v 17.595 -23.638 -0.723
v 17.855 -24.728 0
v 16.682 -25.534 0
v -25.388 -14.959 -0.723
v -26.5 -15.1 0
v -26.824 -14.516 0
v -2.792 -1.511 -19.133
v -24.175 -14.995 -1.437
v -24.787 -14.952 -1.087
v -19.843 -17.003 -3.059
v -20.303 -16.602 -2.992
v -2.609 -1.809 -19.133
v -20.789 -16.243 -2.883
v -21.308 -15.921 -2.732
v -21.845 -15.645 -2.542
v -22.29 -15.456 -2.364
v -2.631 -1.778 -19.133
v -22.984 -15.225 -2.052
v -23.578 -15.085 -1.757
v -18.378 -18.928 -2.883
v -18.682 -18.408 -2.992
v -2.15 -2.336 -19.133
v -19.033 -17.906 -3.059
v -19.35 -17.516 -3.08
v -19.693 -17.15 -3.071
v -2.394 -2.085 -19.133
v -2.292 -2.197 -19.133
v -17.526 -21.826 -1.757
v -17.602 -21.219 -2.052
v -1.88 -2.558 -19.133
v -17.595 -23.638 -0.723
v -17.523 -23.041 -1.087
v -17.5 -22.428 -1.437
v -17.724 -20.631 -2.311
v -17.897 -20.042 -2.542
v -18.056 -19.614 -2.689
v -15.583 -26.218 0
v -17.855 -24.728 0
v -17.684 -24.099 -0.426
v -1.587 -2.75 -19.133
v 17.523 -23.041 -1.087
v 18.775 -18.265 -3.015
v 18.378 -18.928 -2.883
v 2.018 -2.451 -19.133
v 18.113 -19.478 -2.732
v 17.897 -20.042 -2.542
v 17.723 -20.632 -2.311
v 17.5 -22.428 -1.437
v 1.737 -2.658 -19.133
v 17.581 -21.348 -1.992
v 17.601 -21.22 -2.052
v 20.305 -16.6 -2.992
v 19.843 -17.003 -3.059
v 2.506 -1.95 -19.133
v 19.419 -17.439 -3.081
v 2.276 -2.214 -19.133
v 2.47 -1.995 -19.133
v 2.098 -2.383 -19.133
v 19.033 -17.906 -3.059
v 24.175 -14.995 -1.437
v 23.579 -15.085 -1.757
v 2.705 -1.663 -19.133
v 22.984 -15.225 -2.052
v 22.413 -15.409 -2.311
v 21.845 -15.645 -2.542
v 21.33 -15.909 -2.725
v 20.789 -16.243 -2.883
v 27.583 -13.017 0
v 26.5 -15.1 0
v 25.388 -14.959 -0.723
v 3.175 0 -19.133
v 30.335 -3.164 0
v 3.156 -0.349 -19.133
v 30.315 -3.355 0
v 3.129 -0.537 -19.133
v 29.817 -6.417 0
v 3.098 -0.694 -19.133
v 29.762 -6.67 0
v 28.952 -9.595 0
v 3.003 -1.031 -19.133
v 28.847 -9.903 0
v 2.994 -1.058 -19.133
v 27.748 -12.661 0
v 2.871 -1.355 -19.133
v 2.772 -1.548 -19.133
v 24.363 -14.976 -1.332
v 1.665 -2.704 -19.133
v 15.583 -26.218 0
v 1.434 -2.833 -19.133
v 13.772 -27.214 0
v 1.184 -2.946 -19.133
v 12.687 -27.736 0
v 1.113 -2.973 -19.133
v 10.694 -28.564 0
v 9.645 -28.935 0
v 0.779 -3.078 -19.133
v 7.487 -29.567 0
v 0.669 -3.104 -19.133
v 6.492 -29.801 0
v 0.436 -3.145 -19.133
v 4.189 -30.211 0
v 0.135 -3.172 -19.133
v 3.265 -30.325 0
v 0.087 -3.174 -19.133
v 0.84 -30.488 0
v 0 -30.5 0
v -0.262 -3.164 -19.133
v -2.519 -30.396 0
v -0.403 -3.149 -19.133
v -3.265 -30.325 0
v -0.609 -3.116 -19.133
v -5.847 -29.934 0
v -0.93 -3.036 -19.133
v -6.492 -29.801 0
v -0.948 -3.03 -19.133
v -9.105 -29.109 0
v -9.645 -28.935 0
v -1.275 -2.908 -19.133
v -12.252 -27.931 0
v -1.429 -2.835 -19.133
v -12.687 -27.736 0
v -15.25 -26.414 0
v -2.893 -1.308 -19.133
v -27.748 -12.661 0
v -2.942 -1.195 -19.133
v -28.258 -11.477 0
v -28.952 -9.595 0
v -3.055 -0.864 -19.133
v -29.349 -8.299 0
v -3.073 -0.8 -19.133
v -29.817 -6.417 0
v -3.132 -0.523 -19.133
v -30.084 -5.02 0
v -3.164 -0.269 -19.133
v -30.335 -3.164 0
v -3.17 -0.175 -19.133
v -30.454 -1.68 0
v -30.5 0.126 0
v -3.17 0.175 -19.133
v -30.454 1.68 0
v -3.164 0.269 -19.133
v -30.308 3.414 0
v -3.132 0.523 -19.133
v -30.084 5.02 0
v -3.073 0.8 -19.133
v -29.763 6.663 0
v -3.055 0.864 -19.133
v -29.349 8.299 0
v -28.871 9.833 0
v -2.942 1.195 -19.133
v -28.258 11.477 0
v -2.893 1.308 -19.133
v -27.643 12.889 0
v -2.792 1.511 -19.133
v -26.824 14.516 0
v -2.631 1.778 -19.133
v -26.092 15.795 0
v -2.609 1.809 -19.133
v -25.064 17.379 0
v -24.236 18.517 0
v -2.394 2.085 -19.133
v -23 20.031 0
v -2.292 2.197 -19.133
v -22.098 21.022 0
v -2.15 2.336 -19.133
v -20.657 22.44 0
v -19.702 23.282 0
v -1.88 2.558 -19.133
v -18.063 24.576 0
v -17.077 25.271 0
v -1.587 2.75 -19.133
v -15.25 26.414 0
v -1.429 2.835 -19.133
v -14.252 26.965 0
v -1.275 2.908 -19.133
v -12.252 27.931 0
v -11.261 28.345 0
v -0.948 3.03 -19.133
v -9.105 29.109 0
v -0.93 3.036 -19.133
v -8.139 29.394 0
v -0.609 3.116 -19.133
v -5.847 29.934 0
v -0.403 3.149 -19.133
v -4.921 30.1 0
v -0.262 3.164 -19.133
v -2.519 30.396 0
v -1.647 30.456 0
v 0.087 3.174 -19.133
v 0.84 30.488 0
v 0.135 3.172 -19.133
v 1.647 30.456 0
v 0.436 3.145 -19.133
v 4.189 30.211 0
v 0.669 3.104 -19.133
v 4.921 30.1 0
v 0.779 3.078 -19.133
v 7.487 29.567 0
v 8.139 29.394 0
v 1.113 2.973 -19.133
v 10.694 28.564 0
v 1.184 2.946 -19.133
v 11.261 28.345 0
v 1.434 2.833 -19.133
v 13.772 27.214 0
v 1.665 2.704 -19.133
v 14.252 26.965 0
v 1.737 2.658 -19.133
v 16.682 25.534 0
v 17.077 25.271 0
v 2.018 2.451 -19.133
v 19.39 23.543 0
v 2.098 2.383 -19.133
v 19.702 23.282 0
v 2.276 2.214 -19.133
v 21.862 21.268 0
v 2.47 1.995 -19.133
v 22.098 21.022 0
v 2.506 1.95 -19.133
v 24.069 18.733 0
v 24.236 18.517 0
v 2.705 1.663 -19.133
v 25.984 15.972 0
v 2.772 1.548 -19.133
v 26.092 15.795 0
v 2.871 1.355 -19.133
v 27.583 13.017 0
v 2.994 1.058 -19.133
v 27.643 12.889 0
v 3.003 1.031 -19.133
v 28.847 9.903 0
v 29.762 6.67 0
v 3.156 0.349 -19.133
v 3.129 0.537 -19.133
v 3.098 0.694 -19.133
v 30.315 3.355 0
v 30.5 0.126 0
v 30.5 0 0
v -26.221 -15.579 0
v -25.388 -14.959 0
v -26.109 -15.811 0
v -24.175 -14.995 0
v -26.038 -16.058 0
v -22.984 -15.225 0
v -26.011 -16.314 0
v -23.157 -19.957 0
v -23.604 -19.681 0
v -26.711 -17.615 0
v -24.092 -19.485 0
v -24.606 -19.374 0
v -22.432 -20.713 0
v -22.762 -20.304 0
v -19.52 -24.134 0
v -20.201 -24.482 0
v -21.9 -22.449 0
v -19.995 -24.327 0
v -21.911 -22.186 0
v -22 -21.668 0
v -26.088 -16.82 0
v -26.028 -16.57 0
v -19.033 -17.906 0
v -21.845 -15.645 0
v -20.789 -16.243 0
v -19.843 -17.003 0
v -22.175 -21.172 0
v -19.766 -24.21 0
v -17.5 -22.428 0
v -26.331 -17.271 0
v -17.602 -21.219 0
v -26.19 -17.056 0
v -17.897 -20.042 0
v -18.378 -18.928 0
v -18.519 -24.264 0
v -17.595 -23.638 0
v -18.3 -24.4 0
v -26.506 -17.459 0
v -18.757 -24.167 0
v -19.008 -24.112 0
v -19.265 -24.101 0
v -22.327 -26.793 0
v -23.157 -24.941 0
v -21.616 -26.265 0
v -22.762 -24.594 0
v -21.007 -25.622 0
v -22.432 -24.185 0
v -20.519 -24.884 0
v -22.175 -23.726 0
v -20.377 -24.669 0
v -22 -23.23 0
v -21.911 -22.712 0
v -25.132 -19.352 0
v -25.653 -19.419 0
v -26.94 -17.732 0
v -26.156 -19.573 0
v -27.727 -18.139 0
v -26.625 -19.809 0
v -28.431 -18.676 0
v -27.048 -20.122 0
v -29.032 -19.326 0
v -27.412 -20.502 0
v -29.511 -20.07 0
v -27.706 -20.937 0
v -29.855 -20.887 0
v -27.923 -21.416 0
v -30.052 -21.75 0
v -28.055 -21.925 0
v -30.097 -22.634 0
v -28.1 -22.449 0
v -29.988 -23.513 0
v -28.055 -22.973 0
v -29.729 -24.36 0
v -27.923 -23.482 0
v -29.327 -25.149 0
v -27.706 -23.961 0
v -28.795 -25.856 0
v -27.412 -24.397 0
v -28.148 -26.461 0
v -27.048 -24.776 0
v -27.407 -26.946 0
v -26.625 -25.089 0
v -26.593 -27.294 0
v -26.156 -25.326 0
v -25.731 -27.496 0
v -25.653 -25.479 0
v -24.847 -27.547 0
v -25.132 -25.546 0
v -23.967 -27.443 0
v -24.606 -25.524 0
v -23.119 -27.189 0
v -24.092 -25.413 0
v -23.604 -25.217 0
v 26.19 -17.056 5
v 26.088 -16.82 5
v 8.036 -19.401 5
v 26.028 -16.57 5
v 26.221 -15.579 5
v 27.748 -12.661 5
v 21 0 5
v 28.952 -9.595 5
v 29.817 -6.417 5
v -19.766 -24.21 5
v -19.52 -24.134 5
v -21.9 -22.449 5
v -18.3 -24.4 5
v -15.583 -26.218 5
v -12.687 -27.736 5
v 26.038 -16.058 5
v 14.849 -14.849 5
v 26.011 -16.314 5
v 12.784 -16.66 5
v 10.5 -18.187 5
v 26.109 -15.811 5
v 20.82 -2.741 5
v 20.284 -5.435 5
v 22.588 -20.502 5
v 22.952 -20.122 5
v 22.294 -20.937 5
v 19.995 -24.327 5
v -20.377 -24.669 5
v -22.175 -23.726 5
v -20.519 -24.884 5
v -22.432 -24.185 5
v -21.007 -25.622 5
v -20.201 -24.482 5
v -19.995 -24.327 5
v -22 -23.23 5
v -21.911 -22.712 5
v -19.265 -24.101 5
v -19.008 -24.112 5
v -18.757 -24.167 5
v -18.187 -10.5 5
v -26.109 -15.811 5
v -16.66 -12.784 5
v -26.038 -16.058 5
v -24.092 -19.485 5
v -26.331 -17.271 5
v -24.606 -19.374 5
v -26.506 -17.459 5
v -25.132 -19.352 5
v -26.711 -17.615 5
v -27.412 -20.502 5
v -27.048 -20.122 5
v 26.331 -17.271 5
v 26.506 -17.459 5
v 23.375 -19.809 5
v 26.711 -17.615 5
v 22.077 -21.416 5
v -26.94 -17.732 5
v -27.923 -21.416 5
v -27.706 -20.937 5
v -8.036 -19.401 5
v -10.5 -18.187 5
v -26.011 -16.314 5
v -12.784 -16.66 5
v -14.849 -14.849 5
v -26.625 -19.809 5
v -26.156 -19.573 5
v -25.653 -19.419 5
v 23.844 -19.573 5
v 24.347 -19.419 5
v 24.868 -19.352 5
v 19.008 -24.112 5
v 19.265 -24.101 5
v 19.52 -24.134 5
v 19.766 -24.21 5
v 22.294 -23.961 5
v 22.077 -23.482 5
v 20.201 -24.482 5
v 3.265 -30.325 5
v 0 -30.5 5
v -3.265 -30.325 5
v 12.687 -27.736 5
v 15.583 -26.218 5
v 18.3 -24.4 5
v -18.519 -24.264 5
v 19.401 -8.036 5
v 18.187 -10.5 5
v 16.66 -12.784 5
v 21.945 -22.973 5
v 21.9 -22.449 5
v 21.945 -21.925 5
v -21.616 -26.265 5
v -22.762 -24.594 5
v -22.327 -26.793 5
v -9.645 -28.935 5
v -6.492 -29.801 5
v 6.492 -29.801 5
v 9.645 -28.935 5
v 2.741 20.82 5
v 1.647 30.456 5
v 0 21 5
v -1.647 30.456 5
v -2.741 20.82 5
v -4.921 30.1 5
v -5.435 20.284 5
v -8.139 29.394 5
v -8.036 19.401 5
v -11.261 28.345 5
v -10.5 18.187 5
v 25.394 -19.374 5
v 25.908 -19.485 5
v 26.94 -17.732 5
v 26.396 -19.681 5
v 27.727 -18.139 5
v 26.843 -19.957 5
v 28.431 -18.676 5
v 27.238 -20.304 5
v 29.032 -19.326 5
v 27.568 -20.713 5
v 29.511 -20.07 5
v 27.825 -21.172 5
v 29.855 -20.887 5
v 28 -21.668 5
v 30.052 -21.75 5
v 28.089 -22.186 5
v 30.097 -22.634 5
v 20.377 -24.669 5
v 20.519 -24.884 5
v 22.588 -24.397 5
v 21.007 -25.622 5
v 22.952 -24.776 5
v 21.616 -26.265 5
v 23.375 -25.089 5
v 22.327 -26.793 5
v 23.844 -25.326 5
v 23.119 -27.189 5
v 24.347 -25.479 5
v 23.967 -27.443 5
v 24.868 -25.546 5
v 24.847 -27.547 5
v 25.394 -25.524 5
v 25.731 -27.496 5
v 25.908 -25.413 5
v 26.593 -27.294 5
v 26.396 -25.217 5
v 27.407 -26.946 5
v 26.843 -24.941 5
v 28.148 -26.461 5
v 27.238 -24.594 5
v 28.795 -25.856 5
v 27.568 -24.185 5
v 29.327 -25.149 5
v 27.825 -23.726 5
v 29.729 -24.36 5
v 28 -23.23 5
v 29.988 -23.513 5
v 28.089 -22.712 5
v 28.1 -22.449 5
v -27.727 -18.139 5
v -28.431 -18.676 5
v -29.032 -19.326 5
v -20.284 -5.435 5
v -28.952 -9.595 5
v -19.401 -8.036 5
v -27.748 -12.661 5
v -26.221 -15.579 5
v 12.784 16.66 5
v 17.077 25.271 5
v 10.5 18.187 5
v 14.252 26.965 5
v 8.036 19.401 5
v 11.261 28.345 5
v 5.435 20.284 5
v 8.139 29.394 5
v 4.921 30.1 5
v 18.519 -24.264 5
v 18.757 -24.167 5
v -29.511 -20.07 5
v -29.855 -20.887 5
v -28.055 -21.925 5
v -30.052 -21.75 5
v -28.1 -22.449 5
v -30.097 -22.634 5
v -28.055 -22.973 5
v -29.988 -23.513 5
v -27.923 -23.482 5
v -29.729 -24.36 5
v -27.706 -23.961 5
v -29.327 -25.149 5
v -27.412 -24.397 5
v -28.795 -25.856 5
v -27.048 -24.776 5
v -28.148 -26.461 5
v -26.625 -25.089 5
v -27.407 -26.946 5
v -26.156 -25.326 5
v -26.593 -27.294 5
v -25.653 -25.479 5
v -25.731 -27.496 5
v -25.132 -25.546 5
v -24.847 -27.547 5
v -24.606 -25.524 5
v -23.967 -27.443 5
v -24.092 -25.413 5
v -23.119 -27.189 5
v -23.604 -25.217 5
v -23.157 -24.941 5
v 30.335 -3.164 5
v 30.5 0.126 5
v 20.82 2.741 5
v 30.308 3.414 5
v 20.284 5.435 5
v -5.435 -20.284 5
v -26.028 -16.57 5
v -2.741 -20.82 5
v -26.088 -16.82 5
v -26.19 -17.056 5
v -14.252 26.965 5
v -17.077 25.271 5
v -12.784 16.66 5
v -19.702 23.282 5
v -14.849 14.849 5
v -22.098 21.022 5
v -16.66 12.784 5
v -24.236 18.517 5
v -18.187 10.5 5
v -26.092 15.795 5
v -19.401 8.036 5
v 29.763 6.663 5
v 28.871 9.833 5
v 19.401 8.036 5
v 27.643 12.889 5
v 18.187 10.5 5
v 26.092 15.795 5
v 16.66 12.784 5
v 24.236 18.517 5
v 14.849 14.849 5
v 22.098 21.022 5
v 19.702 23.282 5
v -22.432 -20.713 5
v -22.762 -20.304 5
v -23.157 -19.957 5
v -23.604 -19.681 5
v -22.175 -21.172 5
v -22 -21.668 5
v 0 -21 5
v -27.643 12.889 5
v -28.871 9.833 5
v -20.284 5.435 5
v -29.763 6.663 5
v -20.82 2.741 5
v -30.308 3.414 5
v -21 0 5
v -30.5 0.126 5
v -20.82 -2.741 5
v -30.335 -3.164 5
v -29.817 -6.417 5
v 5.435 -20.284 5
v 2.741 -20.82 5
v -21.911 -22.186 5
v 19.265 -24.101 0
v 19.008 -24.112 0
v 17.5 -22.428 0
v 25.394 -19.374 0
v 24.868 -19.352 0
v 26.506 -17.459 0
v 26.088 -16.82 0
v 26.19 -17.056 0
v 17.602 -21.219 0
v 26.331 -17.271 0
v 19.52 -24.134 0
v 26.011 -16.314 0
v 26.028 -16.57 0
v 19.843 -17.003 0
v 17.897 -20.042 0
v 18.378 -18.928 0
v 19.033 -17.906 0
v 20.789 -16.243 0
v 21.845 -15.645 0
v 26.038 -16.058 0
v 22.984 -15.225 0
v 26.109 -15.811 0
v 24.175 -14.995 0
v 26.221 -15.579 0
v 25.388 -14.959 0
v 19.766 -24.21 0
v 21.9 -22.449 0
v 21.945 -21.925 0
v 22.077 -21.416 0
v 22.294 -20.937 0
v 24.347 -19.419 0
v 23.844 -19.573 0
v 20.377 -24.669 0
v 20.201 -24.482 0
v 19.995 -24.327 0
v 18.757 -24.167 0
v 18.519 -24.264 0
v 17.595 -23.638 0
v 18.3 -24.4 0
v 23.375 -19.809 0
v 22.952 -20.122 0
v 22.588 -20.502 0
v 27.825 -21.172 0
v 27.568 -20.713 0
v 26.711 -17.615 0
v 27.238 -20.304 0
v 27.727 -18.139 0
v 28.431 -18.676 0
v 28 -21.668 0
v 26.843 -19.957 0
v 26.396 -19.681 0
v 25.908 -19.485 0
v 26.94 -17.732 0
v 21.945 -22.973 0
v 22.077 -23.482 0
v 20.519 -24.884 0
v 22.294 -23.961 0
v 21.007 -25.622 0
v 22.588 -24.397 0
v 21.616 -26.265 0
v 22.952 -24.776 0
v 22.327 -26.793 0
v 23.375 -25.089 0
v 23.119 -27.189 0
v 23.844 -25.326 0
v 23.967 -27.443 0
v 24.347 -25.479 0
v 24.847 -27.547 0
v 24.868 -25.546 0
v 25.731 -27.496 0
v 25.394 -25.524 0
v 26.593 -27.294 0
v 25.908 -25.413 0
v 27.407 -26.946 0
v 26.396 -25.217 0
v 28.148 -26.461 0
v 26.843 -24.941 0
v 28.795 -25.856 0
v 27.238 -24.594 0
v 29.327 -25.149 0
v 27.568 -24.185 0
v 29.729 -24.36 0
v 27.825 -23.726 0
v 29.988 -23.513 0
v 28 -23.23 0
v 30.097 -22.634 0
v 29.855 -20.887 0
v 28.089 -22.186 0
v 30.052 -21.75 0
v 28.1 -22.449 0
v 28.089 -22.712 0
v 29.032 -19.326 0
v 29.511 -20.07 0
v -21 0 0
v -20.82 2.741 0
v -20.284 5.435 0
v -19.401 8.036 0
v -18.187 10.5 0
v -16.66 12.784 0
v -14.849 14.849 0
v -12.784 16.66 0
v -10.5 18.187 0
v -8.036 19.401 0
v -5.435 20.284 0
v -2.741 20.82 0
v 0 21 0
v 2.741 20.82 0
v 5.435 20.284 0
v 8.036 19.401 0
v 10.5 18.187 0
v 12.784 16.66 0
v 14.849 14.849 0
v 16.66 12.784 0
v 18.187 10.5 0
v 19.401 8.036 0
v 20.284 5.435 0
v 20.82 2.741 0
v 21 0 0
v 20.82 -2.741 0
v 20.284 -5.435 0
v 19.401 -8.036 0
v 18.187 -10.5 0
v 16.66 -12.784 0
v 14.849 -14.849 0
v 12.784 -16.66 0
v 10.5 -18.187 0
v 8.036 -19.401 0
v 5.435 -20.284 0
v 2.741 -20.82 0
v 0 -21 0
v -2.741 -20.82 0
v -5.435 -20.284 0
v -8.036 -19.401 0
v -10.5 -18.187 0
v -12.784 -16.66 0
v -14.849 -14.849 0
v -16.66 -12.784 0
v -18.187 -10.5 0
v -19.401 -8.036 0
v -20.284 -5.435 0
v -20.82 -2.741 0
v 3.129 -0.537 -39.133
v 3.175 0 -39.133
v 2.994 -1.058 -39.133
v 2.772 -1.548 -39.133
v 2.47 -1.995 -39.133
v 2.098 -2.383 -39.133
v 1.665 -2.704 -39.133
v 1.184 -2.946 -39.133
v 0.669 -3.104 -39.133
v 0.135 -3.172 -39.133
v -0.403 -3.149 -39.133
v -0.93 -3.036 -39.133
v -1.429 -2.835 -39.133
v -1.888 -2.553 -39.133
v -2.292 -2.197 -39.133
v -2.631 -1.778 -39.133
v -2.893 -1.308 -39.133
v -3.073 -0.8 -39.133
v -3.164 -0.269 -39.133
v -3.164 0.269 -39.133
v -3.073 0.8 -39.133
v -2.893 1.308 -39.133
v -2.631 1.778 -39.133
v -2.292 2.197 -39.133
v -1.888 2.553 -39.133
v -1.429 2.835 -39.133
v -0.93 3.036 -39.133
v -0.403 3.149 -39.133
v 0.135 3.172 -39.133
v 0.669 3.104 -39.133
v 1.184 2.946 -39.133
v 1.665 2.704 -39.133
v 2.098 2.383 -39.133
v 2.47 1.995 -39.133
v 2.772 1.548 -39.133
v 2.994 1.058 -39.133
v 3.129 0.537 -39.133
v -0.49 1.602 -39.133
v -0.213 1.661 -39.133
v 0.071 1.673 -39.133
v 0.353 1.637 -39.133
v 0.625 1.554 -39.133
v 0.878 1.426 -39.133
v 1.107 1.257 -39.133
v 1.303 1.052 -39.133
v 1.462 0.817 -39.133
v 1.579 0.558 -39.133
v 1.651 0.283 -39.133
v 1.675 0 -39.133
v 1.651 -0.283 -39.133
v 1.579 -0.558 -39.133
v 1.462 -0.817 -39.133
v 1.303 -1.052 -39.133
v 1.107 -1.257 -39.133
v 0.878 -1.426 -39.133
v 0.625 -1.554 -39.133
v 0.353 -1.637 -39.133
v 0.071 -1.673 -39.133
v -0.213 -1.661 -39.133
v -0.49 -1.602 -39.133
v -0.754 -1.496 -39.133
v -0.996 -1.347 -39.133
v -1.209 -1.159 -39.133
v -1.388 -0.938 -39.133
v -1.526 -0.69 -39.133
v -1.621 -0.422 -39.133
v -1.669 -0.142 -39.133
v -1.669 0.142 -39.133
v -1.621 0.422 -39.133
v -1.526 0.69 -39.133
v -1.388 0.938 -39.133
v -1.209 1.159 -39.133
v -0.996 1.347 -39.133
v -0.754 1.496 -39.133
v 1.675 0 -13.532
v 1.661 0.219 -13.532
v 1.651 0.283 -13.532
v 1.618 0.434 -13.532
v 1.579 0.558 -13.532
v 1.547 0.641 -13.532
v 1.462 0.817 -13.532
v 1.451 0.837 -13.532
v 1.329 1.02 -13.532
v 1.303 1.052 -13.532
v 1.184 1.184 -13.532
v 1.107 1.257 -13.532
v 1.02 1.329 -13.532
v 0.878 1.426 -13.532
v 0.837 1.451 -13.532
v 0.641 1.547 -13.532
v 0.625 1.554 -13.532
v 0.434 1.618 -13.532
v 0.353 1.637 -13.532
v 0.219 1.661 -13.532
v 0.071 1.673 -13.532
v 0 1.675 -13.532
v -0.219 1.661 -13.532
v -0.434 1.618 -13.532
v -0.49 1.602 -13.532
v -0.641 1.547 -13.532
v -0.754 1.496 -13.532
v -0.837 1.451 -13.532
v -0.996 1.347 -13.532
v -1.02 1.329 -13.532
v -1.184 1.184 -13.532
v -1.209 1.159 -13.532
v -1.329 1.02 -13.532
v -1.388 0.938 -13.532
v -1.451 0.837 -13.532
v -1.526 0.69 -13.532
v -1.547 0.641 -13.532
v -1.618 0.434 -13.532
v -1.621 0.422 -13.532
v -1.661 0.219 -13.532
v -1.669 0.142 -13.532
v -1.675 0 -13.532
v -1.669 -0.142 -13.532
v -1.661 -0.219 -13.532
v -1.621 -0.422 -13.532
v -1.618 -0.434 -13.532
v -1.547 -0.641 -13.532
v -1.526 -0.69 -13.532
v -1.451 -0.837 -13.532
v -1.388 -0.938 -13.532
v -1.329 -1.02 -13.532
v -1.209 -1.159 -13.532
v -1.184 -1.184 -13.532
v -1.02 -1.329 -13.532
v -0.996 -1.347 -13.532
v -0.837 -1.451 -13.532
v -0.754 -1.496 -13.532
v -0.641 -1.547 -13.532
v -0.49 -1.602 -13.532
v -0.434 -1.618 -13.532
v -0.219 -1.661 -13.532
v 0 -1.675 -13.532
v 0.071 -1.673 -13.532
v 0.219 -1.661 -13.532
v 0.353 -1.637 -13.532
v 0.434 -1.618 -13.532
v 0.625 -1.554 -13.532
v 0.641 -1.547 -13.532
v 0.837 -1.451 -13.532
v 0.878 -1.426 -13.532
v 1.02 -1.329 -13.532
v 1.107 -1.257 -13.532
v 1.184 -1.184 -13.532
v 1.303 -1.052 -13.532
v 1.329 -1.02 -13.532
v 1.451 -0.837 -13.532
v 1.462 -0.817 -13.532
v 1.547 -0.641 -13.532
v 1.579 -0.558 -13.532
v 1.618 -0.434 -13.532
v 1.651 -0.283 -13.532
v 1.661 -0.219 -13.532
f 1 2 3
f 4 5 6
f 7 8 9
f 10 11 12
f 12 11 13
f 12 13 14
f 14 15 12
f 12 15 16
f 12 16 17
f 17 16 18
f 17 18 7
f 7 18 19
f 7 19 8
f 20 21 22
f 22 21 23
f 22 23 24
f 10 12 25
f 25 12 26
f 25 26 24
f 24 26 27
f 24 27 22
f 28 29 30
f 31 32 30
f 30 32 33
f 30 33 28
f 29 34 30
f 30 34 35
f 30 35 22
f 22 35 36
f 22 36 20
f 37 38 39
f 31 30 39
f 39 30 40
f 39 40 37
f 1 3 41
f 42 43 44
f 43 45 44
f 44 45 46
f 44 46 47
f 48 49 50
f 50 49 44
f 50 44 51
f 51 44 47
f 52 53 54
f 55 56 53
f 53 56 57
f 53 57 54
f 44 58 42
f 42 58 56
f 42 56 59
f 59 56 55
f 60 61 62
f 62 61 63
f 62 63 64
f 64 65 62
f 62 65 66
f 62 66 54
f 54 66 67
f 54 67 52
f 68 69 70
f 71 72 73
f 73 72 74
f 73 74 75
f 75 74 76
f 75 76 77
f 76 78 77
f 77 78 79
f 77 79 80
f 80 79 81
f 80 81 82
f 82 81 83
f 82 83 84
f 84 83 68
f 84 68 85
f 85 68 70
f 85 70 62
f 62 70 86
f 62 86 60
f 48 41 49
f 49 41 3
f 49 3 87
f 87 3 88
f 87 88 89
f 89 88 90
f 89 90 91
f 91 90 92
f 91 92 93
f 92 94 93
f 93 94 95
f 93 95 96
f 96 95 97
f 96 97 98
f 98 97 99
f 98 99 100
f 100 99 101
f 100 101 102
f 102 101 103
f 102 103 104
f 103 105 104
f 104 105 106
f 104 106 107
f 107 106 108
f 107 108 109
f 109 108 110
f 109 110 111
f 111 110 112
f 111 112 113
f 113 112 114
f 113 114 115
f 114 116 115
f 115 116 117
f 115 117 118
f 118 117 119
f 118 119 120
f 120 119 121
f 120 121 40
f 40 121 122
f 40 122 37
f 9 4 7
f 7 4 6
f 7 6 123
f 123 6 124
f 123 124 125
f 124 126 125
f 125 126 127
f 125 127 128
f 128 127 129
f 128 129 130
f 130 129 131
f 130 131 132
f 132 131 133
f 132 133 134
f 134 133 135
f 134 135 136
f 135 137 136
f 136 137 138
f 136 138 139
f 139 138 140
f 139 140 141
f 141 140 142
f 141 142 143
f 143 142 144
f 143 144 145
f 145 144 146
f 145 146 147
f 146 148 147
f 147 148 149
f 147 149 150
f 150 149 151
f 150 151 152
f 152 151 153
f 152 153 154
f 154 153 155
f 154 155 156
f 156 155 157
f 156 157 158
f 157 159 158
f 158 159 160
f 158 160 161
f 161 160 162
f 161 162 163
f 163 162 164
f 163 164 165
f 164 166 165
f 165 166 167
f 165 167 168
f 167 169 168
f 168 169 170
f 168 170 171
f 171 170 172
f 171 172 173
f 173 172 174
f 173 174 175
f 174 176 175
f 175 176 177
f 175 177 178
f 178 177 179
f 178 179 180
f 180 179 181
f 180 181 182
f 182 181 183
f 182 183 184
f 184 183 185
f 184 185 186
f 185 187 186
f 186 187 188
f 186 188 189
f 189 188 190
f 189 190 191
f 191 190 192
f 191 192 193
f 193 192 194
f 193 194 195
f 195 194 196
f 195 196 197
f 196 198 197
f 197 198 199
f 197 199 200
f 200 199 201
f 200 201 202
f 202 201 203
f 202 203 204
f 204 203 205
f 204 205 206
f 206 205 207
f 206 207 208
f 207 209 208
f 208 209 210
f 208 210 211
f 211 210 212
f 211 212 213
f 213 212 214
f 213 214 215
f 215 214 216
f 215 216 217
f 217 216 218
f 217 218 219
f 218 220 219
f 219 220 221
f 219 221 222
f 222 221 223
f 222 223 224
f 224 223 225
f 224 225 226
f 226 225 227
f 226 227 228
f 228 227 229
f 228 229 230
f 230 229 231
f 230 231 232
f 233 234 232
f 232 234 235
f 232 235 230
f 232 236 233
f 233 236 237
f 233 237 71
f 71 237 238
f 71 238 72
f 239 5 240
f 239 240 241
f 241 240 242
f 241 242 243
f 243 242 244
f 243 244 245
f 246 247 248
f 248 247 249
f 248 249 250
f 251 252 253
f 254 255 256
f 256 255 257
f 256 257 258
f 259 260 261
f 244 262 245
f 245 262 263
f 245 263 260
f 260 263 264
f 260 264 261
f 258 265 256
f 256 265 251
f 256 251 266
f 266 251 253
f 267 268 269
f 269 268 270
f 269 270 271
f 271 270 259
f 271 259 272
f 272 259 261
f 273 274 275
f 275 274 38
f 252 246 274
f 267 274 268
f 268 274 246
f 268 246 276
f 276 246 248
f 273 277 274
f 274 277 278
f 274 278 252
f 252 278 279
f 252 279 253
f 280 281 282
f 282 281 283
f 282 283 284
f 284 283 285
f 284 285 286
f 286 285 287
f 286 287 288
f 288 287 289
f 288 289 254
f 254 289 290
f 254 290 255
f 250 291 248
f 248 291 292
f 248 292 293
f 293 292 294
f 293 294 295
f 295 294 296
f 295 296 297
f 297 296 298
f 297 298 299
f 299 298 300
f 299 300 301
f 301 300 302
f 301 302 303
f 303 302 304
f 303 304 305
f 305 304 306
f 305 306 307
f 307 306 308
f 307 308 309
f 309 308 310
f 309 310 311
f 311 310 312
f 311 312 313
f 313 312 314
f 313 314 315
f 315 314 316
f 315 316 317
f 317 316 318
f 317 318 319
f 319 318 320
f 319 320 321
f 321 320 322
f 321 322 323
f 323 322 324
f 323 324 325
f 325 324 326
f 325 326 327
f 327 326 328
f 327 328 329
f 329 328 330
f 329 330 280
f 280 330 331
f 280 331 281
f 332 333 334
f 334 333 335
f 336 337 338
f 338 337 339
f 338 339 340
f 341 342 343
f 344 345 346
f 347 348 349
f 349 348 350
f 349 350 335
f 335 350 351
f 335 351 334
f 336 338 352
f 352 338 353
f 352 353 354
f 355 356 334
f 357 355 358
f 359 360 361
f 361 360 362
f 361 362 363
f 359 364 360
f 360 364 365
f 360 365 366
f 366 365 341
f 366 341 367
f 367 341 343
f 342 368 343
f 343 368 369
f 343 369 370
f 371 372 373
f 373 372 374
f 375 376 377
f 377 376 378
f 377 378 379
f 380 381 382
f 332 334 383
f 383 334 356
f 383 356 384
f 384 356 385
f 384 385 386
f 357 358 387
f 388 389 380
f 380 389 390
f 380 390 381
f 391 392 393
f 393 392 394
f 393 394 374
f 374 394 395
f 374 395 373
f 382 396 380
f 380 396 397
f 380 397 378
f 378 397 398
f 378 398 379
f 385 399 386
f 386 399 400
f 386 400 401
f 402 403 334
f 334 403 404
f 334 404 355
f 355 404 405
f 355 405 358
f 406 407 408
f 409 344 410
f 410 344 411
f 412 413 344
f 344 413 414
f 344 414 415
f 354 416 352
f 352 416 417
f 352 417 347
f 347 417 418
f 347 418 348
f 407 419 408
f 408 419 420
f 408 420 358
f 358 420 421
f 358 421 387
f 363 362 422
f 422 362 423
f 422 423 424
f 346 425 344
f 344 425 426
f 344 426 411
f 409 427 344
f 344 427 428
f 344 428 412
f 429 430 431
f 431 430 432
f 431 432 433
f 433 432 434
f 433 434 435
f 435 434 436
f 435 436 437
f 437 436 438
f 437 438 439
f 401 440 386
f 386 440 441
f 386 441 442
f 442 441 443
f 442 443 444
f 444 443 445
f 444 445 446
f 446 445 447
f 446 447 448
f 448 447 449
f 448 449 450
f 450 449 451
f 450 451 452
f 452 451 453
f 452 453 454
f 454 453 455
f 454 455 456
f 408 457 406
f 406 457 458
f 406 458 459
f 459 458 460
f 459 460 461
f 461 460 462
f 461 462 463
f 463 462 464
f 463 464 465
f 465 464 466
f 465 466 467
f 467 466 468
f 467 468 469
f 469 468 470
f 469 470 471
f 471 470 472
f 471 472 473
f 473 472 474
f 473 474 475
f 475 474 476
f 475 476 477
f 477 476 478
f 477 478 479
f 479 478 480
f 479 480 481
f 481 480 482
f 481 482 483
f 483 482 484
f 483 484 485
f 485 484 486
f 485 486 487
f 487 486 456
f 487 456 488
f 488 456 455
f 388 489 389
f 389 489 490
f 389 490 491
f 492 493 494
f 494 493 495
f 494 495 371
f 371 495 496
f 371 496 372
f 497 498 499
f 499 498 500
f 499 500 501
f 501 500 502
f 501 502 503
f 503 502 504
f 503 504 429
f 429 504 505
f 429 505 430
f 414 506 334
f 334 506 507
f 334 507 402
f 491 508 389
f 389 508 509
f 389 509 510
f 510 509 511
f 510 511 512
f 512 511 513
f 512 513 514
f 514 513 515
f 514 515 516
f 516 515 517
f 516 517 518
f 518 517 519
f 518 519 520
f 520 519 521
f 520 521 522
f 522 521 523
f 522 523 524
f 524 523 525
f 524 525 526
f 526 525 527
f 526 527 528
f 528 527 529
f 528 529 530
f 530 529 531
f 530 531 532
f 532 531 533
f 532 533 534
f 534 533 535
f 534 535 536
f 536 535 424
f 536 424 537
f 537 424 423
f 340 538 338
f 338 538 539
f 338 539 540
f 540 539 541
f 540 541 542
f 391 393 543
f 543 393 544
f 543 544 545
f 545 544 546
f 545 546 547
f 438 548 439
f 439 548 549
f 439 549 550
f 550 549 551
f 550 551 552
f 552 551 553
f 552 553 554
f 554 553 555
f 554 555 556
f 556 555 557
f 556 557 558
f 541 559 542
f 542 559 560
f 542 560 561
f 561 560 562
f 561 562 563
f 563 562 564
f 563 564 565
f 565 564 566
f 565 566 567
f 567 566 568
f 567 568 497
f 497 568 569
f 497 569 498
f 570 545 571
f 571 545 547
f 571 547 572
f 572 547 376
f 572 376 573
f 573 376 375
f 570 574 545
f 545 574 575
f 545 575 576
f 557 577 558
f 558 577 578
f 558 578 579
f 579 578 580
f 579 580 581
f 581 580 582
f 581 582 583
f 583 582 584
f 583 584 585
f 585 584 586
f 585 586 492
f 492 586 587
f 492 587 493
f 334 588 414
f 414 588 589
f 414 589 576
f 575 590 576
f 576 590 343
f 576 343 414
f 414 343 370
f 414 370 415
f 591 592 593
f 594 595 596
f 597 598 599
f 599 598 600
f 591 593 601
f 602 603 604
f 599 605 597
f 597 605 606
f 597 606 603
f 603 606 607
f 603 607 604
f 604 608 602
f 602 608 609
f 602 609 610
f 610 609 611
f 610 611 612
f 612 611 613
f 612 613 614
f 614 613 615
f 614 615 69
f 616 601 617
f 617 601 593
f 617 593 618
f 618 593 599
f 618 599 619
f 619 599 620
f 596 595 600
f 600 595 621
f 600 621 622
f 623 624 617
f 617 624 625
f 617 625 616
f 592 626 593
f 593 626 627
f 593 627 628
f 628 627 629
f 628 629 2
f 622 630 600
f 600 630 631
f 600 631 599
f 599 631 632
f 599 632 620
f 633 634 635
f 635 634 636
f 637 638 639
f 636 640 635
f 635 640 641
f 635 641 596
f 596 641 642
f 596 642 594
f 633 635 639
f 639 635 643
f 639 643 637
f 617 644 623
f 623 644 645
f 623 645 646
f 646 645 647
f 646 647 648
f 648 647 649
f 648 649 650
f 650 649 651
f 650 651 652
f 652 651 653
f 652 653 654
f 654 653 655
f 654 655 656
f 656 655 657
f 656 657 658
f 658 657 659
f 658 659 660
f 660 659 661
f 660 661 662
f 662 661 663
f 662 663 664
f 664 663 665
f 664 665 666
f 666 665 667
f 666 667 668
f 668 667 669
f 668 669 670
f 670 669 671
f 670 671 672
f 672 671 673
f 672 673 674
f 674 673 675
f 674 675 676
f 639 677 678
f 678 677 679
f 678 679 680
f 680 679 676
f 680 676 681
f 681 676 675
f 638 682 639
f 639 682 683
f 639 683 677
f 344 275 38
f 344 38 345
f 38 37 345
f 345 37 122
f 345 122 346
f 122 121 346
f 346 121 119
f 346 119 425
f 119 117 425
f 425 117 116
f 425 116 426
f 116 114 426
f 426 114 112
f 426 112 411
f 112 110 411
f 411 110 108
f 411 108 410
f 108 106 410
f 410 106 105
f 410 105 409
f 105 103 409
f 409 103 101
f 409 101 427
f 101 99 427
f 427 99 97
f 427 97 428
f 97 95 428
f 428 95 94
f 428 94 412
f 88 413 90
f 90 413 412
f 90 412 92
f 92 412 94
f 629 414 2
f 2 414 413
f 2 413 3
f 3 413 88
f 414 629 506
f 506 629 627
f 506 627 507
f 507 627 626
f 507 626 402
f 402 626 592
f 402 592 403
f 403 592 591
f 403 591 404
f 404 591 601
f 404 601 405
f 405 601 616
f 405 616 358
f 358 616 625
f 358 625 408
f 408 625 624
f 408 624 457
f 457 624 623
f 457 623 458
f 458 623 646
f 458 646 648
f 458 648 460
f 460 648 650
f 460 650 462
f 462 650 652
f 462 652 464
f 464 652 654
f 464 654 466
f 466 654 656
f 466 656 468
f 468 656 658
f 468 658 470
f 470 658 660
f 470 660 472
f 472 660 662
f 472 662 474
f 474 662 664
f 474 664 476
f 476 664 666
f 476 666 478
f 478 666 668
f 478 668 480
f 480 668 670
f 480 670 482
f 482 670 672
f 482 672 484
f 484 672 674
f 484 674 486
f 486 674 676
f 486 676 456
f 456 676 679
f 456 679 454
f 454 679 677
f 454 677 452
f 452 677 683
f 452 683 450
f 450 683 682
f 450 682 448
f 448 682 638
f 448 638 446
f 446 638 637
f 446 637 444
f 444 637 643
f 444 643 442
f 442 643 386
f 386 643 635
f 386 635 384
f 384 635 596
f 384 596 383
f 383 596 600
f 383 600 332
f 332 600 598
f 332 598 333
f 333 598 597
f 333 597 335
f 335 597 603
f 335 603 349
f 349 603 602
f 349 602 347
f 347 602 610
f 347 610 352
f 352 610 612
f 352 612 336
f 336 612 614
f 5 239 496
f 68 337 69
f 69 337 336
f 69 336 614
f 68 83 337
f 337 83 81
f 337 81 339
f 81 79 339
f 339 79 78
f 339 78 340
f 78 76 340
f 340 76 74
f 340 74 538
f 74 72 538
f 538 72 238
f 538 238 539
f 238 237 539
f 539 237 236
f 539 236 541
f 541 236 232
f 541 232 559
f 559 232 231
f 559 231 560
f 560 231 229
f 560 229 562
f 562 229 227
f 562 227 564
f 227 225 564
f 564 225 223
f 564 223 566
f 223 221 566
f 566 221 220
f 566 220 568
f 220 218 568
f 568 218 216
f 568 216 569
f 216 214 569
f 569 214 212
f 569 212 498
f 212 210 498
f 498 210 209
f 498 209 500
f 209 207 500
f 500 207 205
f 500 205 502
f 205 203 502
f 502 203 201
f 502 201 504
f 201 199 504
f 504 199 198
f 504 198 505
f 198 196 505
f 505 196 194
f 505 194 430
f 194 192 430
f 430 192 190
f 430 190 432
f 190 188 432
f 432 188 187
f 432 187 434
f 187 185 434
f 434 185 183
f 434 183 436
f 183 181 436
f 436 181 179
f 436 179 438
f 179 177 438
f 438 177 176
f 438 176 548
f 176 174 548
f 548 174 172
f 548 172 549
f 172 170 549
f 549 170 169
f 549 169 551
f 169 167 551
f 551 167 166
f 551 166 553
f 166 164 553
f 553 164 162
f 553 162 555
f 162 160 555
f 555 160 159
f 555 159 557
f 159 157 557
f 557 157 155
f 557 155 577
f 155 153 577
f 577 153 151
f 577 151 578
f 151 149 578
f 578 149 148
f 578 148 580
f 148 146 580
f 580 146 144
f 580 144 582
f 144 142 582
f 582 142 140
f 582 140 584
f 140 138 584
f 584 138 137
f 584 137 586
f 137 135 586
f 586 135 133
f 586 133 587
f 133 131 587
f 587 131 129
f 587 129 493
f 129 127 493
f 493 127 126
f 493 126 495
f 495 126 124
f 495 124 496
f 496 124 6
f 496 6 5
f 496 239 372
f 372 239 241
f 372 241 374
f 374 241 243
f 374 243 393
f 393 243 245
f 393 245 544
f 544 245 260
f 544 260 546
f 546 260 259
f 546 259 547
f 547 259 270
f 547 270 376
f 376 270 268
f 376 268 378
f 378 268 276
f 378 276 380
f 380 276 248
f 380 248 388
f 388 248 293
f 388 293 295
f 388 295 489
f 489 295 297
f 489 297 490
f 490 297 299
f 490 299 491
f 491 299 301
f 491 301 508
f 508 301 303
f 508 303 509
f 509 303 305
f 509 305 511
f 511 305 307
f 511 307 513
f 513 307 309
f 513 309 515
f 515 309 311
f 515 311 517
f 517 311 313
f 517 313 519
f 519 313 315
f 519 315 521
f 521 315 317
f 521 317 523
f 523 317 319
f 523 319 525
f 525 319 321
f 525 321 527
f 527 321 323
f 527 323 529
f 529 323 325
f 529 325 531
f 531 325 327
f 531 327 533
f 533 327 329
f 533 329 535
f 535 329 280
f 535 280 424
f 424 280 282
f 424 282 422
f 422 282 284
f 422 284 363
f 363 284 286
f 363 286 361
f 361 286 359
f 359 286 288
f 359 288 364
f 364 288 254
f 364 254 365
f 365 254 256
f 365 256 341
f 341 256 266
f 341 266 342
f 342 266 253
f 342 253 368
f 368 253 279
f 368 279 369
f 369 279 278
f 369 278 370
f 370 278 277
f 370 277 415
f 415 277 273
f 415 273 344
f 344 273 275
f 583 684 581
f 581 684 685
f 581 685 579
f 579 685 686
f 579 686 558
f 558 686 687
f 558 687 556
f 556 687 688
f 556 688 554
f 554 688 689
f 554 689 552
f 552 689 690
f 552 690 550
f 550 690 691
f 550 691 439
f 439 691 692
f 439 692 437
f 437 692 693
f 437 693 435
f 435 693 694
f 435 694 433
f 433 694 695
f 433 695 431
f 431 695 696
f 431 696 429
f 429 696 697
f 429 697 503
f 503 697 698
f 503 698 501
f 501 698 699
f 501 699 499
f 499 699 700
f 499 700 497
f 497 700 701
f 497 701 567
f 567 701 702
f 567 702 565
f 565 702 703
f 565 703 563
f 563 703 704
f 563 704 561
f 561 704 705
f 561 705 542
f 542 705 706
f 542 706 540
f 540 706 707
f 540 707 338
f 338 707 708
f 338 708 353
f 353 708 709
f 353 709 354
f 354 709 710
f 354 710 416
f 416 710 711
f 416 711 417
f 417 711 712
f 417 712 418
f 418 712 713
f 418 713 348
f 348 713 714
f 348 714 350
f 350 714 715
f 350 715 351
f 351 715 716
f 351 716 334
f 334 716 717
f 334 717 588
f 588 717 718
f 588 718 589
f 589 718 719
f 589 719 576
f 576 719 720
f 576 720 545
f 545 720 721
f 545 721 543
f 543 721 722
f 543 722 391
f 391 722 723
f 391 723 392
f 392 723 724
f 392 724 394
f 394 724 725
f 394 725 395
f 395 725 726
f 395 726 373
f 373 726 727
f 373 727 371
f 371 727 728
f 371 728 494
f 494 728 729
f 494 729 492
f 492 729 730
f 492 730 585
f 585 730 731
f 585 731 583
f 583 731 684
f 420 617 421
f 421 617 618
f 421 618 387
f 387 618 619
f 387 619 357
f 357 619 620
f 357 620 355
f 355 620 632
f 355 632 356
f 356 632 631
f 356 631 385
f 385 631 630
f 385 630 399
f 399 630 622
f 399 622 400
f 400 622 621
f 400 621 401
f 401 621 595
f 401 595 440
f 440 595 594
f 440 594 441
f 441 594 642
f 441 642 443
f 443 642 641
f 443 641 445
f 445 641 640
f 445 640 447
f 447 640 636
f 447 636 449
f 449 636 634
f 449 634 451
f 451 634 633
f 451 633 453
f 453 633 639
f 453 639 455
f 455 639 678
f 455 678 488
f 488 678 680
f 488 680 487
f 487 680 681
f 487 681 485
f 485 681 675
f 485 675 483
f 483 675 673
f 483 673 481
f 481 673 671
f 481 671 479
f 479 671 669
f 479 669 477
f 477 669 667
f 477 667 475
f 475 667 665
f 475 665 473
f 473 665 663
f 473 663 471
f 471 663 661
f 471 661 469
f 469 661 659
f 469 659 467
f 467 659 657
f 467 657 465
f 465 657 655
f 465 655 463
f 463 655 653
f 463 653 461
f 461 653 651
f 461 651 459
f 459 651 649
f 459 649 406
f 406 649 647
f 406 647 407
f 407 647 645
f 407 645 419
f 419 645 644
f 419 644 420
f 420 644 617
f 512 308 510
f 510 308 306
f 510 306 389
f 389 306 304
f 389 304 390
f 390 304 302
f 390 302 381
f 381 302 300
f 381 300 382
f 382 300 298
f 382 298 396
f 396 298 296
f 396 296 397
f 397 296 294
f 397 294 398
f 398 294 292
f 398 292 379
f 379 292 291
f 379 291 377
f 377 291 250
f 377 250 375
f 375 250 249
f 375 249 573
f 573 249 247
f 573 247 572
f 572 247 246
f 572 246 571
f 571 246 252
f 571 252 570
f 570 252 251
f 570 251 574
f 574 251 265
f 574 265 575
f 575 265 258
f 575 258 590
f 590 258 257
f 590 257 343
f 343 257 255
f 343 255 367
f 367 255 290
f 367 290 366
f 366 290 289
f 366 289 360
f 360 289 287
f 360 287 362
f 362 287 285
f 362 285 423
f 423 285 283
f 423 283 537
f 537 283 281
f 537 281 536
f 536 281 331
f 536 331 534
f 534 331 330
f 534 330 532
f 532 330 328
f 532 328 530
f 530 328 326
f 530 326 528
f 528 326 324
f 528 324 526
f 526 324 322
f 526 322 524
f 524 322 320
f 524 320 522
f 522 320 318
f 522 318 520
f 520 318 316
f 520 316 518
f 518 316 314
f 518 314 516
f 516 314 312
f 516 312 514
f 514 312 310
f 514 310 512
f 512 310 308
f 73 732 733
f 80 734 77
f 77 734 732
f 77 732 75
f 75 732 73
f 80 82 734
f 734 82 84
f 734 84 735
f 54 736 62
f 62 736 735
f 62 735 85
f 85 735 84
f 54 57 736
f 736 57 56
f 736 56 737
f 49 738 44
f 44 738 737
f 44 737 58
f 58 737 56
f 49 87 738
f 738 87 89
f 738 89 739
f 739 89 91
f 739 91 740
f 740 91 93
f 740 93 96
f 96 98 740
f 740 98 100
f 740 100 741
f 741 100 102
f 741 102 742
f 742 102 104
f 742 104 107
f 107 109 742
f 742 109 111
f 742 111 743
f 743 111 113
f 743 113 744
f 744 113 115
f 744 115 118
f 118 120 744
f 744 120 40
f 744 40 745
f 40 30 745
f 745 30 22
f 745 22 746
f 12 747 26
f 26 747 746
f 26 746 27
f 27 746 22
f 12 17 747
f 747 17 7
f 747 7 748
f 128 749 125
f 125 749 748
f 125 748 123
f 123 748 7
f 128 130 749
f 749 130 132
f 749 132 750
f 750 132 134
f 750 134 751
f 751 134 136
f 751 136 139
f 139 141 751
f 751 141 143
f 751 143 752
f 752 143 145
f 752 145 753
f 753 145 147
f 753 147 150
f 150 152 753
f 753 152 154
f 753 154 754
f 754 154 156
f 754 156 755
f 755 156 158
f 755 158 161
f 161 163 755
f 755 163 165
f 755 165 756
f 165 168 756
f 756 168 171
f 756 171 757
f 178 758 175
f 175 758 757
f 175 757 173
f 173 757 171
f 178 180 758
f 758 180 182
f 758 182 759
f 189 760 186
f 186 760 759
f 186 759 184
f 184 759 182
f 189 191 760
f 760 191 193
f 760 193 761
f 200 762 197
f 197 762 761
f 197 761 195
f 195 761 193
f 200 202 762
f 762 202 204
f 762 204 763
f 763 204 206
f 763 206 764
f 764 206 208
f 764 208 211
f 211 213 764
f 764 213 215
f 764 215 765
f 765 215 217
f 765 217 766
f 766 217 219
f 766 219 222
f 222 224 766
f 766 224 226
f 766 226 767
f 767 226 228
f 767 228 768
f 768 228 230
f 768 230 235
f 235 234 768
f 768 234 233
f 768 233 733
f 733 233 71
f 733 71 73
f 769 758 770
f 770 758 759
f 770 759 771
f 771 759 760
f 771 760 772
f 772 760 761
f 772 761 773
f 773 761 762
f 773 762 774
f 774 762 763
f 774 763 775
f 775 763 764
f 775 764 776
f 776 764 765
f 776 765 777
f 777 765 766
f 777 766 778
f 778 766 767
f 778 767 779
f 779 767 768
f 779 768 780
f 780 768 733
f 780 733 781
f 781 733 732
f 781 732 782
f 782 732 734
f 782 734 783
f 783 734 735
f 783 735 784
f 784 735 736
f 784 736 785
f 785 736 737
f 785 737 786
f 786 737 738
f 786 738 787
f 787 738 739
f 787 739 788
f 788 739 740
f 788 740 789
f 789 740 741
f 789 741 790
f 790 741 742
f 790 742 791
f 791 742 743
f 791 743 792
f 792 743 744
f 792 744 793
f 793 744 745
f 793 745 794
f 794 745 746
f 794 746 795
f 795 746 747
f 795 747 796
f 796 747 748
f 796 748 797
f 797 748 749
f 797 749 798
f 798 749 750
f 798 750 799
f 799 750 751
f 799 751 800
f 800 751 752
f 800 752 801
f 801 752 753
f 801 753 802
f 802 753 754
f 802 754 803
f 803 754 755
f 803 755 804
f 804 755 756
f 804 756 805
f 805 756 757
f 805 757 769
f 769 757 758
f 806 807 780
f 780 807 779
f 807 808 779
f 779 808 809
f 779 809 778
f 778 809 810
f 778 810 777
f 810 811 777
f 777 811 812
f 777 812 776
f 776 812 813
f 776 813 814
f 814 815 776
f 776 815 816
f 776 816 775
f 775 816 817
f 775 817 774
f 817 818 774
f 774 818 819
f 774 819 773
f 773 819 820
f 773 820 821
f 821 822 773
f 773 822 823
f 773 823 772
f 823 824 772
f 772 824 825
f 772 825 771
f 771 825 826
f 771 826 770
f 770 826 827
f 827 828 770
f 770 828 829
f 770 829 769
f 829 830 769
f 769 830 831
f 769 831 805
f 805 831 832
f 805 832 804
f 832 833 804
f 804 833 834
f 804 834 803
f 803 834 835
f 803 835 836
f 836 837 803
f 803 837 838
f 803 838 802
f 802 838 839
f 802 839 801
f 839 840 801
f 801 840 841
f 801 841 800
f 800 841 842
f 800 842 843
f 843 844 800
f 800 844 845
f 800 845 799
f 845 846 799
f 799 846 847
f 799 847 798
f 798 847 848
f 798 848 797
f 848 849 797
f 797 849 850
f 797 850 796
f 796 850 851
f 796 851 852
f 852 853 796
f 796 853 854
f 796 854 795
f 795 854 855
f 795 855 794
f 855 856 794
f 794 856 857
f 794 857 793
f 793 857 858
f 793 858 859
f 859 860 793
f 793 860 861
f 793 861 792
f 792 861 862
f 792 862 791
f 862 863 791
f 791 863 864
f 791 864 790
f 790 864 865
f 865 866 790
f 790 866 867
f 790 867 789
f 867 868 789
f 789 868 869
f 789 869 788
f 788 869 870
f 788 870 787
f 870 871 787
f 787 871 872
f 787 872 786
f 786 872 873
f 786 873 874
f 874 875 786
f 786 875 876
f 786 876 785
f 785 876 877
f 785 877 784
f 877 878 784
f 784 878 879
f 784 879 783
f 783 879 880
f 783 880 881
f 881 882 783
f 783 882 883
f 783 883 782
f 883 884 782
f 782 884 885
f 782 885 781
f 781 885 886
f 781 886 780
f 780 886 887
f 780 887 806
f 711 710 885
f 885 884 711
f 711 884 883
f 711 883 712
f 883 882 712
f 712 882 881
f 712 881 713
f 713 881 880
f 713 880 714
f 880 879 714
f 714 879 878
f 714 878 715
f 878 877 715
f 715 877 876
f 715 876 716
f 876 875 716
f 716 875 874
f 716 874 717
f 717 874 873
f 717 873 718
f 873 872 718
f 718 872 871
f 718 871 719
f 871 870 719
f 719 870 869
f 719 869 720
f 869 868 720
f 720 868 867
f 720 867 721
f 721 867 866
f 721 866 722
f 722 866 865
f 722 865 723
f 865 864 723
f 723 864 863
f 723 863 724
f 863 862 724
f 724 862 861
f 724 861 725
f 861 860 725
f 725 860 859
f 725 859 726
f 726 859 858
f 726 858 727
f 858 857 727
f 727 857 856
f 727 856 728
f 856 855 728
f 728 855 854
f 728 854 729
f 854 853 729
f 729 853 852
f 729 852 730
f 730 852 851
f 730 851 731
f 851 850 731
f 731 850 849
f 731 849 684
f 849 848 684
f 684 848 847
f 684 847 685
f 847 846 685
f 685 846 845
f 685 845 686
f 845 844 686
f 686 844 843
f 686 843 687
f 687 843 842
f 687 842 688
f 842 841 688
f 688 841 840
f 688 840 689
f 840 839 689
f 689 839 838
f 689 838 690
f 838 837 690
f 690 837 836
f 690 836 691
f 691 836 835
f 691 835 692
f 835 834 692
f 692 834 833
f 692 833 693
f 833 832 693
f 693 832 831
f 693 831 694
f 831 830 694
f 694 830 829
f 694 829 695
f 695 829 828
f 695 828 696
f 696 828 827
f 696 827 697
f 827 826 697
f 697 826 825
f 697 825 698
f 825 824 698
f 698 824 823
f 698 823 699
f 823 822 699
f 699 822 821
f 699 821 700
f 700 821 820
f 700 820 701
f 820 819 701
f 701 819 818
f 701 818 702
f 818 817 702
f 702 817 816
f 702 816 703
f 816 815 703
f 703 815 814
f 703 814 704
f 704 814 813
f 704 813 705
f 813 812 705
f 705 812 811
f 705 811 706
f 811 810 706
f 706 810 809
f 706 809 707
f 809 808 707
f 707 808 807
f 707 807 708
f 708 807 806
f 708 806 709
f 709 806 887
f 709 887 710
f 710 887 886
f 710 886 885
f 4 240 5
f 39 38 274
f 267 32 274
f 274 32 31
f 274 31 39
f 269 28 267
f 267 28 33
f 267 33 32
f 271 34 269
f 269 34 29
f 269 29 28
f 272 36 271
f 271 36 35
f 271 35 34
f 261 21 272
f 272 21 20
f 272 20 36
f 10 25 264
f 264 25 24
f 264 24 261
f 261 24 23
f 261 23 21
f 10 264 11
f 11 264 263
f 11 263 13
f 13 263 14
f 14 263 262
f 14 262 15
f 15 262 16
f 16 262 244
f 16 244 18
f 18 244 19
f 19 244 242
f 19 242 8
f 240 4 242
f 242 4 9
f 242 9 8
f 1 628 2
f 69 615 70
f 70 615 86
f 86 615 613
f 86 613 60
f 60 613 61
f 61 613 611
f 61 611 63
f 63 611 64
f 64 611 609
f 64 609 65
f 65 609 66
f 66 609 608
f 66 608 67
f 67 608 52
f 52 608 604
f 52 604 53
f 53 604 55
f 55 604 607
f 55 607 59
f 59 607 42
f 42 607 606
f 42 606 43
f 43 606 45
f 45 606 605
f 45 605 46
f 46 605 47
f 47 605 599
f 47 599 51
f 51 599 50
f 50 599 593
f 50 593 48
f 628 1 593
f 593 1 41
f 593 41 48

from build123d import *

# Parameters (mm, degrees)
ESBO_O1_R                = 21
ESBO_O1_R_2              = 3.1
RESSALTO_EXTRUS_O1_DEPTH = 5
ESBO_O3_R                = 7.5
CORTE_EXTRUS_O1_DEPTH    = 19


with BuildPart() as part:
    # Esboço1 → Ressalto-extrusão1 (new body)
    with BuildSketch(Plane.XY):
        with BuildLine():
            ThreePointArc((26.22105388, -15.579035061), (0, 30.5), (-26.22105388, -15.579035061))
            ThreePointArc((-26.22105388, -15.579035061), (-26.087819075, -16.82024855), (-26.940019837, -17.73245264))
            ThreePointArc((-26.940019837, -17.73245264), (-28.794642857, -25.856499042), (-20.518582449, -24.883575301))
            ThreePointArc((-20.518582449, -24.883575301), (-19.520268693, -24.134087419), (-18.30049416, -24.399629372))
            ThreePointArc((-18.30049416, -24.399629372), (0, -30.5), (18.30049416, -24.399629372))
            ThreePointArc((18.30049416, -24.399629372), (19.520268693, -24.134087419), (20.518582449, -24.883575301))
            ThreePointArc((20.518582449, -24.883575301), (28.794642857, -25.856499042), (26.940019837, -17.73245264))
            ThreePointArc((26.940019837, -17.73245264), (26.087819075, -16.82024855), (26.22105388, -15.579035061))
        make_face()
        Circle(ESBO_O1_R, mode=Mode.SUBTRACT)
        with Locations((25, -22.449053432)):
            Circle(ESBO_O1_R_2, mode=Mode.SUBTRACT)
        with Locations((-25, -22.449053432)):
            Circle(ESBO_O1_R_2, mode=Mode.SUBTRACT)
    extrude(amount=RESSALTO_EXTRUS_O1_DEPTH)

    # Esboço2 → Revolução1 (revolve)
    with BuildSketch(Plane(origin=(0, 0, 0), x_dir=(1, 0, 0), z_dir=(0, 1, 0))):
        Polygon((30.5, 0), (3.175, 19.133170982), (3.175, 39.133170982), (1.675, 39.133170982), (1.675, 13.531510676), (21, 0), align=None)
    revolve(axis=Axis((0, 0, 0), (0, 0, -1)))

    # Esboço3 → Corte-extrusão1 (cut)
    with BuildSketch(Plane(origin=(0, 0, 0), x_dir=(-1, 0, 0), z_dir=(0, 0, -1))):
        with Locations((-25, -22.449053432)):
            Circle(ESBO_O3_R)
        with Locations((25, -22.449053432)):
            Circle(ESBO_O3_R)
    extrude(amount=CORTE_EXTRUS_O1_DEPTH, mode=Mode.SUBTRACT)


solid = part.part
